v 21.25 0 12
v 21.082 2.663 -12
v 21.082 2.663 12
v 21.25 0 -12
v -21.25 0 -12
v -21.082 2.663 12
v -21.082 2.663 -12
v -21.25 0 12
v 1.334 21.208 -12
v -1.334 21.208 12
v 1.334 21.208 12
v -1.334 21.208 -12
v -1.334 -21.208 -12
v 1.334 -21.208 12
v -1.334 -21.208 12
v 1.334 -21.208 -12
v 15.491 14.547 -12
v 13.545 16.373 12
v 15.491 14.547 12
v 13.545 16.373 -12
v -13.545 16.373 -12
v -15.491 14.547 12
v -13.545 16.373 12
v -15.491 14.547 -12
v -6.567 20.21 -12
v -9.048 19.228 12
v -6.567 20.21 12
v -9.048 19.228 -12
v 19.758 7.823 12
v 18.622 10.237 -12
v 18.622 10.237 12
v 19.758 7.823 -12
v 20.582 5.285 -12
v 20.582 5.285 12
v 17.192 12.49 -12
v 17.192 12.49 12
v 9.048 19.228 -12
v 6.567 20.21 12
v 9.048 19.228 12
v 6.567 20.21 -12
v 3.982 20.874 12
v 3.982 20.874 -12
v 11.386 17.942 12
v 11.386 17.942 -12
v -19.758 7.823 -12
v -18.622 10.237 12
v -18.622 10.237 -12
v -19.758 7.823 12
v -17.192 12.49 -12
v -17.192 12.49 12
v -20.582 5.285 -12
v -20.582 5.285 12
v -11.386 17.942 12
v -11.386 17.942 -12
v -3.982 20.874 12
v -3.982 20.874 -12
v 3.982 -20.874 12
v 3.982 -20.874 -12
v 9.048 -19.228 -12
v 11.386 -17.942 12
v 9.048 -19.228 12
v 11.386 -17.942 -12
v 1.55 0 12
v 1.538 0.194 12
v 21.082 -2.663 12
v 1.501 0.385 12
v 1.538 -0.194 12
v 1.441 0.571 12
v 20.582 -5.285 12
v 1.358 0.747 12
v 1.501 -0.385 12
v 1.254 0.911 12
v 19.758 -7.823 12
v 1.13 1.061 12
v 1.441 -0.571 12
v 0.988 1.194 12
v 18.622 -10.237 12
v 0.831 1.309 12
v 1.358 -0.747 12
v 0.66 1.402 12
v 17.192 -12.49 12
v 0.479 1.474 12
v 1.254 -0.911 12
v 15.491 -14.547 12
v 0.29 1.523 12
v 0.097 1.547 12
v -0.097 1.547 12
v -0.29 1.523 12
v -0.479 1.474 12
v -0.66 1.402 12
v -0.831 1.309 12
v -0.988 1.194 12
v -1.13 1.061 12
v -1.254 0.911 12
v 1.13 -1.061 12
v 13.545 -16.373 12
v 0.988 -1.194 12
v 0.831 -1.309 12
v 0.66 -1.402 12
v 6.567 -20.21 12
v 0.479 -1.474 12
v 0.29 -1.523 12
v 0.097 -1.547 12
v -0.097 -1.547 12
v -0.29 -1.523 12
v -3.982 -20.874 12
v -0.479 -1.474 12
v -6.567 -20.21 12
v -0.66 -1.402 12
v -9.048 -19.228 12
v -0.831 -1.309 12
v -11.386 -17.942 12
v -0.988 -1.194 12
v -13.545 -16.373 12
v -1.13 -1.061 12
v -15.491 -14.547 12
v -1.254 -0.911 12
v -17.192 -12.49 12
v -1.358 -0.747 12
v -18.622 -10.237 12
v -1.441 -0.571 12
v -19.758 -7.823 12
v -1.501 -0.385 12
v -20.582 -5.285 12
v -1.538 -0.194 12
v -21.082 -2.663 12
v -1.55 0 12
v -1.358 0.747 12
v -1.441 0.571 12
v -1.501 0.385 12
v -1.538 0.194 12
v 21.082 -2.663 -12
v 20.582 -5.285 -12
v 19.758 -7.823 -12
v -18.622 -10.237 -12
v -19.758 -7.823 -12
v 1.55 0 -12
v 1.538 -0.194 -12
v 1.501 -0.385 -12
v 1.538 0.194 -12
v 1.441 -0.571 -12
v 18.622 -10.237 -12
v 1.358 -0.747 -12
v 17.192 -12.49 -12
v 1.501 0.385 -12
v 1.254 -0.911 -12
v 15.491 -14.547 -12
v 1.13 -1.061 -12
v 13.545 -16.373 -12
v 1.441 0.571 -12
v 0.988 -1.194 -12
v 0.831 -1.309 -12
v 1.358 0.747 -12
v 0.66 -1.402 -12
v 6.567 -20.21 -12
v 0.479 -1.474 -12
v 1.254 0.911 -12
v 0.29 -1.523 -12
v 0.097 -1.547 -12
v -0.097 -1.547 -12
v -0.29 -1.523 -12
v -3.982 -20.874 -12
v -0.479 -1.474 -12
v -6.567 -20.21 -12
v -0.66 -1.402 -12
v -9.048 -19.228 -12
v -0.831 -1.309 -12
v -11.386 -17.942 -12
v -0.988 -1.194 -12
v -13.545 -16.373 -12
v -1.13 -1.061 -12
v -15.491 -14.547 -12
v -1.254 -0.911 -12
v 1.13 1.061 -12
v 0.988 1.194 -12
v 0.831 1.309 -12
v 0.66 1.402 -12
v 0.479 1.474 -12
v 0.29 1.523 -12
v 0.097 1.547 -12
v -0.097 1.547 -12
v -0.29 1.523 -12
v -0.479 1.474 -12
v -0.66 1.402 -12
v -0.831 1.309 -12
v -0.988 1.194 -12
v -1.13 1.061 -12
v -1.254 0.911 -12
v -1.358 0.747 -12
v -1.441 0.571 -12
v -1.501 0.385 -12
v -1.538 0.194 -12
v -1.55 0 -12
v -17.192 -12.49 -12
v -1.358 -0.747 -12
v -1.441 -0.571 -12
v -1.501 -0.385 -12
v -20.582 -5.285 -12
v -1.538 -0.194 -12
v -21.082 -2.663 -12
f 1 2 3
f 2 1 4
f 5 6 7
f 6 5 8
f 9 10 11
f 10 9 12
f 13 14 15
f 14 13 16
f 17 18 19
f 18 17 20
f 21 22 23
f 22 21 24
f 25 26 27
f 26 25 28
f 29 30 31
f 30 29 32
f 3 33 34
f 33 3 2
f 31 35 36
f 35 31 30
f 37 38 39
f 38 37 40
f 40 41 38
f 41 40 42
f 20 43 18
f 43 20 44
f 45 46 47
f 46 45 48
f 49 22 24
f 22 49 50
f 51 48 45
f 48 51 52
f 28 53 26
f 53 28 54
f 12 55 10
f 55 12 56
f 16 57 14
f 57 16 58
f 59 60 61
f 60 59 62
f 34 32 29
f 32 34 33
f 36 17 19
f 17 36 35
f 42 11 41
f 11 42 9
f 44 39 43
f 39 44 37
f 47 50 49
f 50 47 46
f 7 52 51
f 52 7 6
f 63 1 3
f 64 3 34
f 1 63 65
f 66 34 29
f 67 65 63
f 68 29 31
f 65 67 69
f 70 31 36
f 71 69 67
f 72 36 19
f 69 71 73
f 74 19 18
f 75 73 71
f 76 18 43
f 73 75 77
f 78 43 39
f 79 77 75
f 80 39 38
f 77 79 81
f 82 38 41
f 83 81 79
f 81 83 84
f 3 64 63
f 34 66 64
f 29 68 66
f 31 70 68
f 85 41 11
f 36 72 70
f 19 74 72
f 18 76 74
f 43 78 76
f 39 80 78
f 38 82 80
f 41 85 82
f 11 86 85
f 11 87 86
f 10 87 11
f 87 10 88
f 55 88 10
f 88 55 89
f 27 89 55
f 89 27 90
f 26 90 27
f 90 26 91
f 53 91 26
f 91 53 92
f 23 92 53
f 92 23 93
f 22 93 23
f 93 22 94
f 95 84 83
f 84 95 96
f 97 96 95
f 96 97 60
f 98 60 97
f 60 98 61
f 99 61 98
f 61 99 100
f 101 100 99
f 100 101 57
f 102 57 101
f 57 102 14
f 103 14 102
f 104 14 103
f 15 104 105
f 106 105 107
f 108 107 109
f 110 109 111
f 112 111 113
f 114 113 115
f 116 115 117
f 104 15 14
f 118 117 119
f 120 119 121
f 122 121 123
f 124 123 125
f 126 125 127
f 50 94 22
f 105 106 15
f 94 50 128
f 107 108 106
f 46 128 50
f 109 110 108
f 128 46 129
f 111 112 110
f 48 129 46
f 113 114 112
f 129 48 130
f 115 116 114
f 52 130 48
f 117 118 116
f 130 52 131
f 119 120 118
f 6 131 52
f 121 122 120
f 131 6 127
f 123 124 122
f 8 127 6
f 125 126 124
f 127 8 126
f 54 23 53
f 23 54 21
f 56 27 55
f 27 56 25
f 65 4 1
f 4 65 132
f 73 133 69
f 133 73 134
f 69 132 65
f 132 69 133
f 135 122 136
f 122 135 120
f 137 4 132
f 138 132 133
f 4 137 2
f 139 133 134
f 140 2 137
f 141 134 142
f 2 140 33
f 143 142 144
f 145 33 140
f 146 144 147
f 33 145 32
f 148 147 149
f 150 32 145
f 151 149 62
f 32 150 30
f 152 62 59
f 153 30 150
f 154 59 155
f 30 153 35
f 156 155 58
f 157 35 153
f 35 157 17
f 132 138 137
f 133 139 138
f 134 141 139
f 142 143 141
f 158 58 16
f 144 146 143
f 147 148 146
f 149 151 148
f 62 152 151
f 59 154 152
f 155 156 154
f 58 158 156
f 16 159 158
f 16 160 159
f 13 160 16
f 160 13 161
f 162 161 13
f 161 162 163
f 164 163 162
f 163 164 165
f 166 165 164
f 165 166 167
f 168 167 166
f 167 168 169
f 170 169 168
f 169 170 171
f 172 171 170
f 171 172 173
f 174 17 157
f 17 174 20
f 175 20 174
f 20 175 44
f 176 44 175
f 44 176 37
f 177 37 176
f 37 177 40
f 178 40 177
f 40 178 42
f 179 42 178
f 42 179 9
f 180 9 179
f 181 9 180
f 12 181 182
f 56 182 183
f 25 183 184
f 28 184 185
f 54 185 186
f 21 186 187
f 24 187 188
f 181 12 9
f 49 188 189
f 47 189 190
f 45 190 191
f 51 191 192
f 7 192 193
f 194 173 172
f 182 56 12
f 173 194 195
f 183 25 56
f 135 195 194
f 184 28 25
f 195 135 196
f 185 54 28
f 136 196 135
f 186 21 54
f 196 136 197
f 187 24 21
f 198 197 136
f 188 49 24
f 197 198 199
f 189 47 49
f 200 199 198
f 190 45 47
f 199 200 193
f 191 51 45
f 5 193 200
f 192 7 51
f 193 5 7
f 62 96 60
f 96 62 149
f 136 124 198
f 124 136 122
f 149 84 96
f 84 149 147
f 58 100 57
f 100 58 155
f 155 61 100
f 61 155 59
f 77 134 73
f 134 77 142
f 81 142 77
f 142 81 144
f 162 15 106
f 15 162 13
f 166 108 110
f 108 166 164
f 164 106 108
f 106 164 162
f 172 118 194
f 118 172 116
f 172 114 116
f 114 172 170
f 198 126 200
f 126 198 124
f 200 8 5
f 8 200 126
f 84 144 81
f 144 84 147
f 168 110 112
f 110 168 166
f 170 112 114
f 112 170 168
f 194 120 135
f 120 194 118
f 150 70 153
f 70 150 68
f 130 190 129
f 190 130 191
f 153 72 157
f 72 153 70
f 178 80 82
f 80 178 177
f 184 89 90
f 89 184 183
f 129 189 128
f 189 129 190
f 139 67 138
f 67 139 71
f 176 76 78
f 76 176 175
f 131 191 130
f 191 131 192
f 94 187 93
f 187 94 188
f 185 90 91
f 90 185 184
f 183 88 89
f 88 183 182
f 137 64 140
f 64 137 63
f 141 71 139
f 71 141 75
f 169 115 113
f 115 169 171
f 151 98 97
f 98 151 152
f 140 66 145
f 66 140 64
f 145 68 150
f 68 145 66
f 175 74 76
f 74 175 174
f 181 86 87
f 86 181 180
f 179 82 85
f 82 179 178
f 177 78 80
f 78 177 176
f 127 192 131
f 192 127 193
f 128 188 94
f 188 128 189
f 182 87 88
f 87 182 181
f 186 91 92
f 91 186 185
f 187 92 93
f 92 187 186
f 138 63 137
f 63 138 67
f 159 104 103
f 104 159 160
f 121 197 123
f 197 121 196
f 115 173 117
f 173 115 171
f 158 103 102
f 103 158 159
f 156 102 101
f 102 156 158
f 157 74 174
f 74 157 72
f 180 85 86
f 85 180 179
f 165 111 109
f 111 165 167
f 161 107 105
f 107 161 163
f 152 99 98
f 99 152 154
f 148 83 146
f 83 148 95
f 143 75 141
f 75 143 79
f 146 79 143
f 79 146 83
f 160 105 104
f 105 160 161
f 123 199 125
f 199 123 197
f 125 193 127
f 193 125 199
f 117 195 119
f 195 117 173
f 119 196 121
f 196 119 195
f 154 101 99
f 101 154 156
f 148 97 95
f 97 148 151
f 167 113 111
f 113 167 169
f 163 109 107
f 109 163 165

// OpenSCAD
$fn = 50;


difference() {
	union() {
		translate(v = [0, 0, -12.0000000000]) {
			cylinder(h = 24, r = 21.2500000000);
		}
	}
	union() {
		translate(v = [0, 0, -100.0000000000]) {
			cylinder(h = 200, r = 1.5500000000);
		}
	}
}
